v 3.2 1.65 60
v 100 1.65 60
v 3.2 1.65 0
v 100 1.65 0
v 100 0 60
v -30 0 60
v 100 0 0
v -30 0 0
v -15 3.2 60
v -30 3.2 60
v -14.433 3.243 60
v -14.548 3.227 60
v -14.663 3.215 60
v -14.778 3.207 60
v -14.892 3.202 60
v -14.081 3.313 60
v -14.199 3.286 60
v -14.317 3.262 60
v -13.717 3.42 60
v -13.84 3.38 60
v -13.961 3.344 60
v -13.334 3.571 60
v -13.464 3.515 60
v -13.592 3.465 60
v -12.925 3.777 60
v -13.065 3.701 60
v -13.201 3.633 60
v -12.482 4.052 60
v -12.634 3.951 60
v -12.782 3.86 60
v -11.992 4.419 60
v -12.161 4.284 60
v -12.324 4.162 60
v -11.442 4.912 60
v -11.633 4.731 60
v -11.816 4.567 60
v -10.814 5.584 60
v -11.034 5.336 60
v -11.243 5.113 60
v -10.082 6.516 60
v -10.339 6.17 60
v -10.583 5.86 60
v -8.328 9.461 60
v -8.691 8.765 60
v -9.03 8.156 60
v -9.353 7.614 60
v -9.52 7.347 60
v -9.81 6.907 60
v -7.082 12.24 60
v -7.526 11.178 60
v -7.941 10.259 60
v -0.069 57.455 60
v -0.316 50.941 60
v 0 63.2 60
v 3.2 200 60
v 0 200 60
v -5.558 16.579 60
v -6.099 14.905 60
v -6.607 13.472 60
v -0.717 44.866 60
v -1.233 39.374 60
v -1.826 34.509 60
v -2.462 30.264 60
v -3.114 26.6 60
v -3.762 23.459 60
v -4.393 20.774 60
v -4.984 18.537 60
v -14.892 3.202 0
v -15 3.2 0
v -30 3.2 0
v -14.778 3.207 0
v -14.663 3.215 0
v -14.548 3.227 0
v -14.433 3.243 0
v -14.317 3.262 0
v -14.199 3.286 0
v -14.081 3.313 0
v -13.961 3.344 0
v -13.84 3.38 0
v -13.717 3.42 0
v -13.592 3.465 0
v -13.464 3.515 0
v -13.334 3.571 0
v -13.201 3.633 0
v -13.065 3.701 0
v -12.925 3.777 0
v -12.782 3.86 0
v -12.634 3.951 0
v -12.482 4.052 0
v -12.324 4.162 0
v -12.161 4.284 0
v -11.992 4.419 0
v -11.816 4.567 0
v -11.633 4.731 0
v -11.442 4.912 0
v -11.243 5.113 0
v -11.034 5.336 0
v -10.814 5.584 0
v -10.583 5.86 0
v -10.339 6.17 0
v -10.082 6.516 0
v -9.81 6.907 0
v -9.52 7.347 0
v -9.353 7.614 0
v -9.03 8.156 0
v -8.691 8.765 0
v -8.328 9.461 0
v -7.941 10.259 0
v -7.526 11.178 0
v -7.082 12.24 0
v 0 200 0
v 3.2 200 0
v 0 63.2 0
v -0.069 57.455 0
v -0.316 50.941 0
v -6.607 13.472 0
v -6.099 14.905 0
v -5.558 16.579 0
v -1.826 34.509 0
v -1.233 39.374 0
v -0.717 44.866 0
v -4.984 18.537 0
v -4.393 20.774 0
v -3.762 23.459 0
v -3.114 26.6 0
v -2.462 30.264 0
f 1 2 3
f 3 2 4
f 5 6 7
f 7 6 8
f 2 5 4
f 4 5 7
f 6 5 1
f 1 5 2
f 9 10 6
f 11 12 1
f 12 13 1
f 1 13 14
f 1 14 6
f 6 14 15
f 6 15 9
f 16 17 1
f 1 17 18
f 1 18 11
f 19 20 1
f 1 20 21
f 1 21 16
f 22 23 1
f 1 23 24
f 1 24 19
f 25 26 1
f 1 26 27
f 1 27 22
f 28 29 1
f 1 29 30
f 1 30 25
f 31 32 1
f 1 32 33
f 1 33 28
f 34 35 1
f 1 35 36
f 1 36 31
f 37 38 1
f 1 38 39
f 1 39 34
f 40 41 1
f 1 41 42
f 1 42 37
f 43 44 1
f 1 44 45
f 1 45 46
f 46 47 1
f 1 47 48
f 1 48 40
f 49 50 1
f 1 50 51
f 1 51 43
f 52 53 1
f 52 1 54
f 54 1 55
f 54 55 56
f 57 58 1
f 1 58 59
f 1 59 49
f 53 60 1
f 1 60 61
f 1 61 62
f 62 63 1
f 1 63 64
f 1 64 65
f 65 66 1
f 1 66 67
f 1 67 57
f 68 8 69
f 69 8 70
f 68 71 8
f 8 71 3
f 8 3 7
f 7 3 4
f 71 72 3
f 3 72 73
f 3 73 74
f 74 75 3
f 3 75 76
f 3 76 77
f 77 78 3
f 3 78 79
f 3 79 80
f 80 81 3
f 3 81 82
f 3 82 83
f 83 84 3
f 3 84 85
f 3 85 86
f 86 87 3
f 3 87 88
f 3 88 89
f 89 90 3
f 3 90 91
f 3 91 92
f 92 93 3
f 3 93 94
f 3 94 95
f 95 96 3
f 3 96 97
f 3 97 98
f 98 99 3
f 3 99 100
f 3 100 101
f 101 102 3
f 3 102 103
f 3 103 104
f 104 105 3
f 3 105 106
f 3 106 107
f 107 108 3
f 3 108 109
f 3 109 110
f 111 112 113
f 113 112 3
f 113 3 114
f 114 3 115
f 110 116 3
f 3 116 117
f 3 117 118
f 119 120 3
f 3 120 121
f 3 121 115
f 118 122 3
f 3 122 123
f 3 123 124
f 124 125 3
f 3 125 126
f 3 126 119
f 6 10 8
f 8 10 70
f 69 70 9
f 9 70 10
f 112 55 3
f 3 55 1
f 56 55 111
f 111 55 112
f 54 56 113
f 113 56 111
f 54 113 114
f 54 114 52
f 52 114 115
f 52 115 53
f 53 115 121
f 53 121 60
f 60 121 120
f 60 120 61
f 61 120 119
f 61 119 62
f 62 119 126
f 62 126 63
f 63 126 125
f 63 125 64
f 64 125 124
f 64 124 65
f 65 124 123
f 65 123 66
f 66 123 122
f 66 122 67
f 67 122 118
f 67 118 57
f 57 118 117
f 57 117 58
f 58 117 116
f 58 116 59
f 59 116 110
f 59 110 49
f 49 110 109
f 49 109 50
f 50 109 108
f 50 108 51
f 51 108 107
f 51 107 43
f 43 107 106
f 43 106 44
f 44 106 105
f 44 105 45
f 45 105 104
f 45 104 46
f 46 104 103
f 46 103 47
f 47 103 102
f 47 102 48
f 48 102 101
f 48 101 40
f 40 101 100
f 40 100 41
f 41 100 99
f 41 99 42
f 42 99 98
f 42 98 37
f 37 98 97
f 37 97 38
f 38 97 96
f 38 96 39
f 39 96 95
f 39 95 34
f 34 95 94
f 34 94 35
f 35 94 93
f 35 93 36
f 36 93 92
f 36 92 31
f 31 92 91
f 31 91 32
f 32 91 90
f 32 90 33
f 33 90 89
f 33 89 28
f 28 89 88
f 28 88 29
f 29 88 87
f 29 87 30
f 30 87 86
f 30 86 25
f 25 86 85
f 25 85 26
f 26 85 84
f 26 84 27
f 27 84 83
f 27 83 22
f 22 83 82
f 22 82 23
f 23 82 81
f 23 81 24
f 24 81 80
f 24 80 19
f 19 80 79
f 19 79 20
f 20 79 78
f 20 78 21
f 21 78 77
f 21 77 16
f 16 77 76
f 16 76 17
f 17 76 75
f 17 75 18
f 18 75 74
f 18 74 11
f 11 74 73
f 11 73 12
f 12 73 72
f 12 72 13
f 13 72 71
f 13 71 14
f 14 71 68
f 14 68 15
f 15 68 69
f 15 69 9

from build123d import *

# Parameters (mm, degrees)
ESQUISSE1_W        = 100
ESQUISSE1_H        = 1.65
EXTRU_MINCE1_DEPTH = 60
EXTRU_MINCE2_DEPTH = 60
CONG_1_SIZE        = 15
CONG_1_SIZE_2      = 60


# Read off the part's stored shape, not the designer's step: Extru.-Mince2
with BuildPart() as part:
    # Esquisse1 → Extru.-Mince1 (new body)
    with BuildSketch(Plane.XY):
        with Locations((50, 0.825)):
            Rectangle(ESQUISSE1_W, ESQUISSE1_H)
    extrude(amount=EXTRU_MINCE1_DEPTH)

    # Extru.-Mince2 outline → Extru.-Mince2 (add)
    with BuildSketch(Plane.XY):
        Polygon((-30, 0), (0, 0), (0, 1.65), (3.2, 1.65), (3.2, 200), (0, 200), (0, 3.2), (-30, 3.2), align=None)
    extrude(amount=EXTRU_MINCE2_DEPTH)

    # Congé1
    # an asymmetric fillet: 60, 15 mm, written as the material it adds along each edge
    with BuildSketch(Plane(origin=(0, 3.2, 0), x_dir=(-1, 0, 0), z_dir=(0, 0, 1))) as cong_1_piece_1:
        with BuildLine():
            Bezier((CONG_1_SIZE, 0), (0, 0), (0, -CONG_1_SIZE_2), weights=[1, 0.707106781, 1])
            Line((0, -CONG_1_SIZE_2), (0, 0))
            Line((0, 0), (CONG_1_SIZE, 0))
        make_face()
    extrude(amount=60)


solid = part.part
